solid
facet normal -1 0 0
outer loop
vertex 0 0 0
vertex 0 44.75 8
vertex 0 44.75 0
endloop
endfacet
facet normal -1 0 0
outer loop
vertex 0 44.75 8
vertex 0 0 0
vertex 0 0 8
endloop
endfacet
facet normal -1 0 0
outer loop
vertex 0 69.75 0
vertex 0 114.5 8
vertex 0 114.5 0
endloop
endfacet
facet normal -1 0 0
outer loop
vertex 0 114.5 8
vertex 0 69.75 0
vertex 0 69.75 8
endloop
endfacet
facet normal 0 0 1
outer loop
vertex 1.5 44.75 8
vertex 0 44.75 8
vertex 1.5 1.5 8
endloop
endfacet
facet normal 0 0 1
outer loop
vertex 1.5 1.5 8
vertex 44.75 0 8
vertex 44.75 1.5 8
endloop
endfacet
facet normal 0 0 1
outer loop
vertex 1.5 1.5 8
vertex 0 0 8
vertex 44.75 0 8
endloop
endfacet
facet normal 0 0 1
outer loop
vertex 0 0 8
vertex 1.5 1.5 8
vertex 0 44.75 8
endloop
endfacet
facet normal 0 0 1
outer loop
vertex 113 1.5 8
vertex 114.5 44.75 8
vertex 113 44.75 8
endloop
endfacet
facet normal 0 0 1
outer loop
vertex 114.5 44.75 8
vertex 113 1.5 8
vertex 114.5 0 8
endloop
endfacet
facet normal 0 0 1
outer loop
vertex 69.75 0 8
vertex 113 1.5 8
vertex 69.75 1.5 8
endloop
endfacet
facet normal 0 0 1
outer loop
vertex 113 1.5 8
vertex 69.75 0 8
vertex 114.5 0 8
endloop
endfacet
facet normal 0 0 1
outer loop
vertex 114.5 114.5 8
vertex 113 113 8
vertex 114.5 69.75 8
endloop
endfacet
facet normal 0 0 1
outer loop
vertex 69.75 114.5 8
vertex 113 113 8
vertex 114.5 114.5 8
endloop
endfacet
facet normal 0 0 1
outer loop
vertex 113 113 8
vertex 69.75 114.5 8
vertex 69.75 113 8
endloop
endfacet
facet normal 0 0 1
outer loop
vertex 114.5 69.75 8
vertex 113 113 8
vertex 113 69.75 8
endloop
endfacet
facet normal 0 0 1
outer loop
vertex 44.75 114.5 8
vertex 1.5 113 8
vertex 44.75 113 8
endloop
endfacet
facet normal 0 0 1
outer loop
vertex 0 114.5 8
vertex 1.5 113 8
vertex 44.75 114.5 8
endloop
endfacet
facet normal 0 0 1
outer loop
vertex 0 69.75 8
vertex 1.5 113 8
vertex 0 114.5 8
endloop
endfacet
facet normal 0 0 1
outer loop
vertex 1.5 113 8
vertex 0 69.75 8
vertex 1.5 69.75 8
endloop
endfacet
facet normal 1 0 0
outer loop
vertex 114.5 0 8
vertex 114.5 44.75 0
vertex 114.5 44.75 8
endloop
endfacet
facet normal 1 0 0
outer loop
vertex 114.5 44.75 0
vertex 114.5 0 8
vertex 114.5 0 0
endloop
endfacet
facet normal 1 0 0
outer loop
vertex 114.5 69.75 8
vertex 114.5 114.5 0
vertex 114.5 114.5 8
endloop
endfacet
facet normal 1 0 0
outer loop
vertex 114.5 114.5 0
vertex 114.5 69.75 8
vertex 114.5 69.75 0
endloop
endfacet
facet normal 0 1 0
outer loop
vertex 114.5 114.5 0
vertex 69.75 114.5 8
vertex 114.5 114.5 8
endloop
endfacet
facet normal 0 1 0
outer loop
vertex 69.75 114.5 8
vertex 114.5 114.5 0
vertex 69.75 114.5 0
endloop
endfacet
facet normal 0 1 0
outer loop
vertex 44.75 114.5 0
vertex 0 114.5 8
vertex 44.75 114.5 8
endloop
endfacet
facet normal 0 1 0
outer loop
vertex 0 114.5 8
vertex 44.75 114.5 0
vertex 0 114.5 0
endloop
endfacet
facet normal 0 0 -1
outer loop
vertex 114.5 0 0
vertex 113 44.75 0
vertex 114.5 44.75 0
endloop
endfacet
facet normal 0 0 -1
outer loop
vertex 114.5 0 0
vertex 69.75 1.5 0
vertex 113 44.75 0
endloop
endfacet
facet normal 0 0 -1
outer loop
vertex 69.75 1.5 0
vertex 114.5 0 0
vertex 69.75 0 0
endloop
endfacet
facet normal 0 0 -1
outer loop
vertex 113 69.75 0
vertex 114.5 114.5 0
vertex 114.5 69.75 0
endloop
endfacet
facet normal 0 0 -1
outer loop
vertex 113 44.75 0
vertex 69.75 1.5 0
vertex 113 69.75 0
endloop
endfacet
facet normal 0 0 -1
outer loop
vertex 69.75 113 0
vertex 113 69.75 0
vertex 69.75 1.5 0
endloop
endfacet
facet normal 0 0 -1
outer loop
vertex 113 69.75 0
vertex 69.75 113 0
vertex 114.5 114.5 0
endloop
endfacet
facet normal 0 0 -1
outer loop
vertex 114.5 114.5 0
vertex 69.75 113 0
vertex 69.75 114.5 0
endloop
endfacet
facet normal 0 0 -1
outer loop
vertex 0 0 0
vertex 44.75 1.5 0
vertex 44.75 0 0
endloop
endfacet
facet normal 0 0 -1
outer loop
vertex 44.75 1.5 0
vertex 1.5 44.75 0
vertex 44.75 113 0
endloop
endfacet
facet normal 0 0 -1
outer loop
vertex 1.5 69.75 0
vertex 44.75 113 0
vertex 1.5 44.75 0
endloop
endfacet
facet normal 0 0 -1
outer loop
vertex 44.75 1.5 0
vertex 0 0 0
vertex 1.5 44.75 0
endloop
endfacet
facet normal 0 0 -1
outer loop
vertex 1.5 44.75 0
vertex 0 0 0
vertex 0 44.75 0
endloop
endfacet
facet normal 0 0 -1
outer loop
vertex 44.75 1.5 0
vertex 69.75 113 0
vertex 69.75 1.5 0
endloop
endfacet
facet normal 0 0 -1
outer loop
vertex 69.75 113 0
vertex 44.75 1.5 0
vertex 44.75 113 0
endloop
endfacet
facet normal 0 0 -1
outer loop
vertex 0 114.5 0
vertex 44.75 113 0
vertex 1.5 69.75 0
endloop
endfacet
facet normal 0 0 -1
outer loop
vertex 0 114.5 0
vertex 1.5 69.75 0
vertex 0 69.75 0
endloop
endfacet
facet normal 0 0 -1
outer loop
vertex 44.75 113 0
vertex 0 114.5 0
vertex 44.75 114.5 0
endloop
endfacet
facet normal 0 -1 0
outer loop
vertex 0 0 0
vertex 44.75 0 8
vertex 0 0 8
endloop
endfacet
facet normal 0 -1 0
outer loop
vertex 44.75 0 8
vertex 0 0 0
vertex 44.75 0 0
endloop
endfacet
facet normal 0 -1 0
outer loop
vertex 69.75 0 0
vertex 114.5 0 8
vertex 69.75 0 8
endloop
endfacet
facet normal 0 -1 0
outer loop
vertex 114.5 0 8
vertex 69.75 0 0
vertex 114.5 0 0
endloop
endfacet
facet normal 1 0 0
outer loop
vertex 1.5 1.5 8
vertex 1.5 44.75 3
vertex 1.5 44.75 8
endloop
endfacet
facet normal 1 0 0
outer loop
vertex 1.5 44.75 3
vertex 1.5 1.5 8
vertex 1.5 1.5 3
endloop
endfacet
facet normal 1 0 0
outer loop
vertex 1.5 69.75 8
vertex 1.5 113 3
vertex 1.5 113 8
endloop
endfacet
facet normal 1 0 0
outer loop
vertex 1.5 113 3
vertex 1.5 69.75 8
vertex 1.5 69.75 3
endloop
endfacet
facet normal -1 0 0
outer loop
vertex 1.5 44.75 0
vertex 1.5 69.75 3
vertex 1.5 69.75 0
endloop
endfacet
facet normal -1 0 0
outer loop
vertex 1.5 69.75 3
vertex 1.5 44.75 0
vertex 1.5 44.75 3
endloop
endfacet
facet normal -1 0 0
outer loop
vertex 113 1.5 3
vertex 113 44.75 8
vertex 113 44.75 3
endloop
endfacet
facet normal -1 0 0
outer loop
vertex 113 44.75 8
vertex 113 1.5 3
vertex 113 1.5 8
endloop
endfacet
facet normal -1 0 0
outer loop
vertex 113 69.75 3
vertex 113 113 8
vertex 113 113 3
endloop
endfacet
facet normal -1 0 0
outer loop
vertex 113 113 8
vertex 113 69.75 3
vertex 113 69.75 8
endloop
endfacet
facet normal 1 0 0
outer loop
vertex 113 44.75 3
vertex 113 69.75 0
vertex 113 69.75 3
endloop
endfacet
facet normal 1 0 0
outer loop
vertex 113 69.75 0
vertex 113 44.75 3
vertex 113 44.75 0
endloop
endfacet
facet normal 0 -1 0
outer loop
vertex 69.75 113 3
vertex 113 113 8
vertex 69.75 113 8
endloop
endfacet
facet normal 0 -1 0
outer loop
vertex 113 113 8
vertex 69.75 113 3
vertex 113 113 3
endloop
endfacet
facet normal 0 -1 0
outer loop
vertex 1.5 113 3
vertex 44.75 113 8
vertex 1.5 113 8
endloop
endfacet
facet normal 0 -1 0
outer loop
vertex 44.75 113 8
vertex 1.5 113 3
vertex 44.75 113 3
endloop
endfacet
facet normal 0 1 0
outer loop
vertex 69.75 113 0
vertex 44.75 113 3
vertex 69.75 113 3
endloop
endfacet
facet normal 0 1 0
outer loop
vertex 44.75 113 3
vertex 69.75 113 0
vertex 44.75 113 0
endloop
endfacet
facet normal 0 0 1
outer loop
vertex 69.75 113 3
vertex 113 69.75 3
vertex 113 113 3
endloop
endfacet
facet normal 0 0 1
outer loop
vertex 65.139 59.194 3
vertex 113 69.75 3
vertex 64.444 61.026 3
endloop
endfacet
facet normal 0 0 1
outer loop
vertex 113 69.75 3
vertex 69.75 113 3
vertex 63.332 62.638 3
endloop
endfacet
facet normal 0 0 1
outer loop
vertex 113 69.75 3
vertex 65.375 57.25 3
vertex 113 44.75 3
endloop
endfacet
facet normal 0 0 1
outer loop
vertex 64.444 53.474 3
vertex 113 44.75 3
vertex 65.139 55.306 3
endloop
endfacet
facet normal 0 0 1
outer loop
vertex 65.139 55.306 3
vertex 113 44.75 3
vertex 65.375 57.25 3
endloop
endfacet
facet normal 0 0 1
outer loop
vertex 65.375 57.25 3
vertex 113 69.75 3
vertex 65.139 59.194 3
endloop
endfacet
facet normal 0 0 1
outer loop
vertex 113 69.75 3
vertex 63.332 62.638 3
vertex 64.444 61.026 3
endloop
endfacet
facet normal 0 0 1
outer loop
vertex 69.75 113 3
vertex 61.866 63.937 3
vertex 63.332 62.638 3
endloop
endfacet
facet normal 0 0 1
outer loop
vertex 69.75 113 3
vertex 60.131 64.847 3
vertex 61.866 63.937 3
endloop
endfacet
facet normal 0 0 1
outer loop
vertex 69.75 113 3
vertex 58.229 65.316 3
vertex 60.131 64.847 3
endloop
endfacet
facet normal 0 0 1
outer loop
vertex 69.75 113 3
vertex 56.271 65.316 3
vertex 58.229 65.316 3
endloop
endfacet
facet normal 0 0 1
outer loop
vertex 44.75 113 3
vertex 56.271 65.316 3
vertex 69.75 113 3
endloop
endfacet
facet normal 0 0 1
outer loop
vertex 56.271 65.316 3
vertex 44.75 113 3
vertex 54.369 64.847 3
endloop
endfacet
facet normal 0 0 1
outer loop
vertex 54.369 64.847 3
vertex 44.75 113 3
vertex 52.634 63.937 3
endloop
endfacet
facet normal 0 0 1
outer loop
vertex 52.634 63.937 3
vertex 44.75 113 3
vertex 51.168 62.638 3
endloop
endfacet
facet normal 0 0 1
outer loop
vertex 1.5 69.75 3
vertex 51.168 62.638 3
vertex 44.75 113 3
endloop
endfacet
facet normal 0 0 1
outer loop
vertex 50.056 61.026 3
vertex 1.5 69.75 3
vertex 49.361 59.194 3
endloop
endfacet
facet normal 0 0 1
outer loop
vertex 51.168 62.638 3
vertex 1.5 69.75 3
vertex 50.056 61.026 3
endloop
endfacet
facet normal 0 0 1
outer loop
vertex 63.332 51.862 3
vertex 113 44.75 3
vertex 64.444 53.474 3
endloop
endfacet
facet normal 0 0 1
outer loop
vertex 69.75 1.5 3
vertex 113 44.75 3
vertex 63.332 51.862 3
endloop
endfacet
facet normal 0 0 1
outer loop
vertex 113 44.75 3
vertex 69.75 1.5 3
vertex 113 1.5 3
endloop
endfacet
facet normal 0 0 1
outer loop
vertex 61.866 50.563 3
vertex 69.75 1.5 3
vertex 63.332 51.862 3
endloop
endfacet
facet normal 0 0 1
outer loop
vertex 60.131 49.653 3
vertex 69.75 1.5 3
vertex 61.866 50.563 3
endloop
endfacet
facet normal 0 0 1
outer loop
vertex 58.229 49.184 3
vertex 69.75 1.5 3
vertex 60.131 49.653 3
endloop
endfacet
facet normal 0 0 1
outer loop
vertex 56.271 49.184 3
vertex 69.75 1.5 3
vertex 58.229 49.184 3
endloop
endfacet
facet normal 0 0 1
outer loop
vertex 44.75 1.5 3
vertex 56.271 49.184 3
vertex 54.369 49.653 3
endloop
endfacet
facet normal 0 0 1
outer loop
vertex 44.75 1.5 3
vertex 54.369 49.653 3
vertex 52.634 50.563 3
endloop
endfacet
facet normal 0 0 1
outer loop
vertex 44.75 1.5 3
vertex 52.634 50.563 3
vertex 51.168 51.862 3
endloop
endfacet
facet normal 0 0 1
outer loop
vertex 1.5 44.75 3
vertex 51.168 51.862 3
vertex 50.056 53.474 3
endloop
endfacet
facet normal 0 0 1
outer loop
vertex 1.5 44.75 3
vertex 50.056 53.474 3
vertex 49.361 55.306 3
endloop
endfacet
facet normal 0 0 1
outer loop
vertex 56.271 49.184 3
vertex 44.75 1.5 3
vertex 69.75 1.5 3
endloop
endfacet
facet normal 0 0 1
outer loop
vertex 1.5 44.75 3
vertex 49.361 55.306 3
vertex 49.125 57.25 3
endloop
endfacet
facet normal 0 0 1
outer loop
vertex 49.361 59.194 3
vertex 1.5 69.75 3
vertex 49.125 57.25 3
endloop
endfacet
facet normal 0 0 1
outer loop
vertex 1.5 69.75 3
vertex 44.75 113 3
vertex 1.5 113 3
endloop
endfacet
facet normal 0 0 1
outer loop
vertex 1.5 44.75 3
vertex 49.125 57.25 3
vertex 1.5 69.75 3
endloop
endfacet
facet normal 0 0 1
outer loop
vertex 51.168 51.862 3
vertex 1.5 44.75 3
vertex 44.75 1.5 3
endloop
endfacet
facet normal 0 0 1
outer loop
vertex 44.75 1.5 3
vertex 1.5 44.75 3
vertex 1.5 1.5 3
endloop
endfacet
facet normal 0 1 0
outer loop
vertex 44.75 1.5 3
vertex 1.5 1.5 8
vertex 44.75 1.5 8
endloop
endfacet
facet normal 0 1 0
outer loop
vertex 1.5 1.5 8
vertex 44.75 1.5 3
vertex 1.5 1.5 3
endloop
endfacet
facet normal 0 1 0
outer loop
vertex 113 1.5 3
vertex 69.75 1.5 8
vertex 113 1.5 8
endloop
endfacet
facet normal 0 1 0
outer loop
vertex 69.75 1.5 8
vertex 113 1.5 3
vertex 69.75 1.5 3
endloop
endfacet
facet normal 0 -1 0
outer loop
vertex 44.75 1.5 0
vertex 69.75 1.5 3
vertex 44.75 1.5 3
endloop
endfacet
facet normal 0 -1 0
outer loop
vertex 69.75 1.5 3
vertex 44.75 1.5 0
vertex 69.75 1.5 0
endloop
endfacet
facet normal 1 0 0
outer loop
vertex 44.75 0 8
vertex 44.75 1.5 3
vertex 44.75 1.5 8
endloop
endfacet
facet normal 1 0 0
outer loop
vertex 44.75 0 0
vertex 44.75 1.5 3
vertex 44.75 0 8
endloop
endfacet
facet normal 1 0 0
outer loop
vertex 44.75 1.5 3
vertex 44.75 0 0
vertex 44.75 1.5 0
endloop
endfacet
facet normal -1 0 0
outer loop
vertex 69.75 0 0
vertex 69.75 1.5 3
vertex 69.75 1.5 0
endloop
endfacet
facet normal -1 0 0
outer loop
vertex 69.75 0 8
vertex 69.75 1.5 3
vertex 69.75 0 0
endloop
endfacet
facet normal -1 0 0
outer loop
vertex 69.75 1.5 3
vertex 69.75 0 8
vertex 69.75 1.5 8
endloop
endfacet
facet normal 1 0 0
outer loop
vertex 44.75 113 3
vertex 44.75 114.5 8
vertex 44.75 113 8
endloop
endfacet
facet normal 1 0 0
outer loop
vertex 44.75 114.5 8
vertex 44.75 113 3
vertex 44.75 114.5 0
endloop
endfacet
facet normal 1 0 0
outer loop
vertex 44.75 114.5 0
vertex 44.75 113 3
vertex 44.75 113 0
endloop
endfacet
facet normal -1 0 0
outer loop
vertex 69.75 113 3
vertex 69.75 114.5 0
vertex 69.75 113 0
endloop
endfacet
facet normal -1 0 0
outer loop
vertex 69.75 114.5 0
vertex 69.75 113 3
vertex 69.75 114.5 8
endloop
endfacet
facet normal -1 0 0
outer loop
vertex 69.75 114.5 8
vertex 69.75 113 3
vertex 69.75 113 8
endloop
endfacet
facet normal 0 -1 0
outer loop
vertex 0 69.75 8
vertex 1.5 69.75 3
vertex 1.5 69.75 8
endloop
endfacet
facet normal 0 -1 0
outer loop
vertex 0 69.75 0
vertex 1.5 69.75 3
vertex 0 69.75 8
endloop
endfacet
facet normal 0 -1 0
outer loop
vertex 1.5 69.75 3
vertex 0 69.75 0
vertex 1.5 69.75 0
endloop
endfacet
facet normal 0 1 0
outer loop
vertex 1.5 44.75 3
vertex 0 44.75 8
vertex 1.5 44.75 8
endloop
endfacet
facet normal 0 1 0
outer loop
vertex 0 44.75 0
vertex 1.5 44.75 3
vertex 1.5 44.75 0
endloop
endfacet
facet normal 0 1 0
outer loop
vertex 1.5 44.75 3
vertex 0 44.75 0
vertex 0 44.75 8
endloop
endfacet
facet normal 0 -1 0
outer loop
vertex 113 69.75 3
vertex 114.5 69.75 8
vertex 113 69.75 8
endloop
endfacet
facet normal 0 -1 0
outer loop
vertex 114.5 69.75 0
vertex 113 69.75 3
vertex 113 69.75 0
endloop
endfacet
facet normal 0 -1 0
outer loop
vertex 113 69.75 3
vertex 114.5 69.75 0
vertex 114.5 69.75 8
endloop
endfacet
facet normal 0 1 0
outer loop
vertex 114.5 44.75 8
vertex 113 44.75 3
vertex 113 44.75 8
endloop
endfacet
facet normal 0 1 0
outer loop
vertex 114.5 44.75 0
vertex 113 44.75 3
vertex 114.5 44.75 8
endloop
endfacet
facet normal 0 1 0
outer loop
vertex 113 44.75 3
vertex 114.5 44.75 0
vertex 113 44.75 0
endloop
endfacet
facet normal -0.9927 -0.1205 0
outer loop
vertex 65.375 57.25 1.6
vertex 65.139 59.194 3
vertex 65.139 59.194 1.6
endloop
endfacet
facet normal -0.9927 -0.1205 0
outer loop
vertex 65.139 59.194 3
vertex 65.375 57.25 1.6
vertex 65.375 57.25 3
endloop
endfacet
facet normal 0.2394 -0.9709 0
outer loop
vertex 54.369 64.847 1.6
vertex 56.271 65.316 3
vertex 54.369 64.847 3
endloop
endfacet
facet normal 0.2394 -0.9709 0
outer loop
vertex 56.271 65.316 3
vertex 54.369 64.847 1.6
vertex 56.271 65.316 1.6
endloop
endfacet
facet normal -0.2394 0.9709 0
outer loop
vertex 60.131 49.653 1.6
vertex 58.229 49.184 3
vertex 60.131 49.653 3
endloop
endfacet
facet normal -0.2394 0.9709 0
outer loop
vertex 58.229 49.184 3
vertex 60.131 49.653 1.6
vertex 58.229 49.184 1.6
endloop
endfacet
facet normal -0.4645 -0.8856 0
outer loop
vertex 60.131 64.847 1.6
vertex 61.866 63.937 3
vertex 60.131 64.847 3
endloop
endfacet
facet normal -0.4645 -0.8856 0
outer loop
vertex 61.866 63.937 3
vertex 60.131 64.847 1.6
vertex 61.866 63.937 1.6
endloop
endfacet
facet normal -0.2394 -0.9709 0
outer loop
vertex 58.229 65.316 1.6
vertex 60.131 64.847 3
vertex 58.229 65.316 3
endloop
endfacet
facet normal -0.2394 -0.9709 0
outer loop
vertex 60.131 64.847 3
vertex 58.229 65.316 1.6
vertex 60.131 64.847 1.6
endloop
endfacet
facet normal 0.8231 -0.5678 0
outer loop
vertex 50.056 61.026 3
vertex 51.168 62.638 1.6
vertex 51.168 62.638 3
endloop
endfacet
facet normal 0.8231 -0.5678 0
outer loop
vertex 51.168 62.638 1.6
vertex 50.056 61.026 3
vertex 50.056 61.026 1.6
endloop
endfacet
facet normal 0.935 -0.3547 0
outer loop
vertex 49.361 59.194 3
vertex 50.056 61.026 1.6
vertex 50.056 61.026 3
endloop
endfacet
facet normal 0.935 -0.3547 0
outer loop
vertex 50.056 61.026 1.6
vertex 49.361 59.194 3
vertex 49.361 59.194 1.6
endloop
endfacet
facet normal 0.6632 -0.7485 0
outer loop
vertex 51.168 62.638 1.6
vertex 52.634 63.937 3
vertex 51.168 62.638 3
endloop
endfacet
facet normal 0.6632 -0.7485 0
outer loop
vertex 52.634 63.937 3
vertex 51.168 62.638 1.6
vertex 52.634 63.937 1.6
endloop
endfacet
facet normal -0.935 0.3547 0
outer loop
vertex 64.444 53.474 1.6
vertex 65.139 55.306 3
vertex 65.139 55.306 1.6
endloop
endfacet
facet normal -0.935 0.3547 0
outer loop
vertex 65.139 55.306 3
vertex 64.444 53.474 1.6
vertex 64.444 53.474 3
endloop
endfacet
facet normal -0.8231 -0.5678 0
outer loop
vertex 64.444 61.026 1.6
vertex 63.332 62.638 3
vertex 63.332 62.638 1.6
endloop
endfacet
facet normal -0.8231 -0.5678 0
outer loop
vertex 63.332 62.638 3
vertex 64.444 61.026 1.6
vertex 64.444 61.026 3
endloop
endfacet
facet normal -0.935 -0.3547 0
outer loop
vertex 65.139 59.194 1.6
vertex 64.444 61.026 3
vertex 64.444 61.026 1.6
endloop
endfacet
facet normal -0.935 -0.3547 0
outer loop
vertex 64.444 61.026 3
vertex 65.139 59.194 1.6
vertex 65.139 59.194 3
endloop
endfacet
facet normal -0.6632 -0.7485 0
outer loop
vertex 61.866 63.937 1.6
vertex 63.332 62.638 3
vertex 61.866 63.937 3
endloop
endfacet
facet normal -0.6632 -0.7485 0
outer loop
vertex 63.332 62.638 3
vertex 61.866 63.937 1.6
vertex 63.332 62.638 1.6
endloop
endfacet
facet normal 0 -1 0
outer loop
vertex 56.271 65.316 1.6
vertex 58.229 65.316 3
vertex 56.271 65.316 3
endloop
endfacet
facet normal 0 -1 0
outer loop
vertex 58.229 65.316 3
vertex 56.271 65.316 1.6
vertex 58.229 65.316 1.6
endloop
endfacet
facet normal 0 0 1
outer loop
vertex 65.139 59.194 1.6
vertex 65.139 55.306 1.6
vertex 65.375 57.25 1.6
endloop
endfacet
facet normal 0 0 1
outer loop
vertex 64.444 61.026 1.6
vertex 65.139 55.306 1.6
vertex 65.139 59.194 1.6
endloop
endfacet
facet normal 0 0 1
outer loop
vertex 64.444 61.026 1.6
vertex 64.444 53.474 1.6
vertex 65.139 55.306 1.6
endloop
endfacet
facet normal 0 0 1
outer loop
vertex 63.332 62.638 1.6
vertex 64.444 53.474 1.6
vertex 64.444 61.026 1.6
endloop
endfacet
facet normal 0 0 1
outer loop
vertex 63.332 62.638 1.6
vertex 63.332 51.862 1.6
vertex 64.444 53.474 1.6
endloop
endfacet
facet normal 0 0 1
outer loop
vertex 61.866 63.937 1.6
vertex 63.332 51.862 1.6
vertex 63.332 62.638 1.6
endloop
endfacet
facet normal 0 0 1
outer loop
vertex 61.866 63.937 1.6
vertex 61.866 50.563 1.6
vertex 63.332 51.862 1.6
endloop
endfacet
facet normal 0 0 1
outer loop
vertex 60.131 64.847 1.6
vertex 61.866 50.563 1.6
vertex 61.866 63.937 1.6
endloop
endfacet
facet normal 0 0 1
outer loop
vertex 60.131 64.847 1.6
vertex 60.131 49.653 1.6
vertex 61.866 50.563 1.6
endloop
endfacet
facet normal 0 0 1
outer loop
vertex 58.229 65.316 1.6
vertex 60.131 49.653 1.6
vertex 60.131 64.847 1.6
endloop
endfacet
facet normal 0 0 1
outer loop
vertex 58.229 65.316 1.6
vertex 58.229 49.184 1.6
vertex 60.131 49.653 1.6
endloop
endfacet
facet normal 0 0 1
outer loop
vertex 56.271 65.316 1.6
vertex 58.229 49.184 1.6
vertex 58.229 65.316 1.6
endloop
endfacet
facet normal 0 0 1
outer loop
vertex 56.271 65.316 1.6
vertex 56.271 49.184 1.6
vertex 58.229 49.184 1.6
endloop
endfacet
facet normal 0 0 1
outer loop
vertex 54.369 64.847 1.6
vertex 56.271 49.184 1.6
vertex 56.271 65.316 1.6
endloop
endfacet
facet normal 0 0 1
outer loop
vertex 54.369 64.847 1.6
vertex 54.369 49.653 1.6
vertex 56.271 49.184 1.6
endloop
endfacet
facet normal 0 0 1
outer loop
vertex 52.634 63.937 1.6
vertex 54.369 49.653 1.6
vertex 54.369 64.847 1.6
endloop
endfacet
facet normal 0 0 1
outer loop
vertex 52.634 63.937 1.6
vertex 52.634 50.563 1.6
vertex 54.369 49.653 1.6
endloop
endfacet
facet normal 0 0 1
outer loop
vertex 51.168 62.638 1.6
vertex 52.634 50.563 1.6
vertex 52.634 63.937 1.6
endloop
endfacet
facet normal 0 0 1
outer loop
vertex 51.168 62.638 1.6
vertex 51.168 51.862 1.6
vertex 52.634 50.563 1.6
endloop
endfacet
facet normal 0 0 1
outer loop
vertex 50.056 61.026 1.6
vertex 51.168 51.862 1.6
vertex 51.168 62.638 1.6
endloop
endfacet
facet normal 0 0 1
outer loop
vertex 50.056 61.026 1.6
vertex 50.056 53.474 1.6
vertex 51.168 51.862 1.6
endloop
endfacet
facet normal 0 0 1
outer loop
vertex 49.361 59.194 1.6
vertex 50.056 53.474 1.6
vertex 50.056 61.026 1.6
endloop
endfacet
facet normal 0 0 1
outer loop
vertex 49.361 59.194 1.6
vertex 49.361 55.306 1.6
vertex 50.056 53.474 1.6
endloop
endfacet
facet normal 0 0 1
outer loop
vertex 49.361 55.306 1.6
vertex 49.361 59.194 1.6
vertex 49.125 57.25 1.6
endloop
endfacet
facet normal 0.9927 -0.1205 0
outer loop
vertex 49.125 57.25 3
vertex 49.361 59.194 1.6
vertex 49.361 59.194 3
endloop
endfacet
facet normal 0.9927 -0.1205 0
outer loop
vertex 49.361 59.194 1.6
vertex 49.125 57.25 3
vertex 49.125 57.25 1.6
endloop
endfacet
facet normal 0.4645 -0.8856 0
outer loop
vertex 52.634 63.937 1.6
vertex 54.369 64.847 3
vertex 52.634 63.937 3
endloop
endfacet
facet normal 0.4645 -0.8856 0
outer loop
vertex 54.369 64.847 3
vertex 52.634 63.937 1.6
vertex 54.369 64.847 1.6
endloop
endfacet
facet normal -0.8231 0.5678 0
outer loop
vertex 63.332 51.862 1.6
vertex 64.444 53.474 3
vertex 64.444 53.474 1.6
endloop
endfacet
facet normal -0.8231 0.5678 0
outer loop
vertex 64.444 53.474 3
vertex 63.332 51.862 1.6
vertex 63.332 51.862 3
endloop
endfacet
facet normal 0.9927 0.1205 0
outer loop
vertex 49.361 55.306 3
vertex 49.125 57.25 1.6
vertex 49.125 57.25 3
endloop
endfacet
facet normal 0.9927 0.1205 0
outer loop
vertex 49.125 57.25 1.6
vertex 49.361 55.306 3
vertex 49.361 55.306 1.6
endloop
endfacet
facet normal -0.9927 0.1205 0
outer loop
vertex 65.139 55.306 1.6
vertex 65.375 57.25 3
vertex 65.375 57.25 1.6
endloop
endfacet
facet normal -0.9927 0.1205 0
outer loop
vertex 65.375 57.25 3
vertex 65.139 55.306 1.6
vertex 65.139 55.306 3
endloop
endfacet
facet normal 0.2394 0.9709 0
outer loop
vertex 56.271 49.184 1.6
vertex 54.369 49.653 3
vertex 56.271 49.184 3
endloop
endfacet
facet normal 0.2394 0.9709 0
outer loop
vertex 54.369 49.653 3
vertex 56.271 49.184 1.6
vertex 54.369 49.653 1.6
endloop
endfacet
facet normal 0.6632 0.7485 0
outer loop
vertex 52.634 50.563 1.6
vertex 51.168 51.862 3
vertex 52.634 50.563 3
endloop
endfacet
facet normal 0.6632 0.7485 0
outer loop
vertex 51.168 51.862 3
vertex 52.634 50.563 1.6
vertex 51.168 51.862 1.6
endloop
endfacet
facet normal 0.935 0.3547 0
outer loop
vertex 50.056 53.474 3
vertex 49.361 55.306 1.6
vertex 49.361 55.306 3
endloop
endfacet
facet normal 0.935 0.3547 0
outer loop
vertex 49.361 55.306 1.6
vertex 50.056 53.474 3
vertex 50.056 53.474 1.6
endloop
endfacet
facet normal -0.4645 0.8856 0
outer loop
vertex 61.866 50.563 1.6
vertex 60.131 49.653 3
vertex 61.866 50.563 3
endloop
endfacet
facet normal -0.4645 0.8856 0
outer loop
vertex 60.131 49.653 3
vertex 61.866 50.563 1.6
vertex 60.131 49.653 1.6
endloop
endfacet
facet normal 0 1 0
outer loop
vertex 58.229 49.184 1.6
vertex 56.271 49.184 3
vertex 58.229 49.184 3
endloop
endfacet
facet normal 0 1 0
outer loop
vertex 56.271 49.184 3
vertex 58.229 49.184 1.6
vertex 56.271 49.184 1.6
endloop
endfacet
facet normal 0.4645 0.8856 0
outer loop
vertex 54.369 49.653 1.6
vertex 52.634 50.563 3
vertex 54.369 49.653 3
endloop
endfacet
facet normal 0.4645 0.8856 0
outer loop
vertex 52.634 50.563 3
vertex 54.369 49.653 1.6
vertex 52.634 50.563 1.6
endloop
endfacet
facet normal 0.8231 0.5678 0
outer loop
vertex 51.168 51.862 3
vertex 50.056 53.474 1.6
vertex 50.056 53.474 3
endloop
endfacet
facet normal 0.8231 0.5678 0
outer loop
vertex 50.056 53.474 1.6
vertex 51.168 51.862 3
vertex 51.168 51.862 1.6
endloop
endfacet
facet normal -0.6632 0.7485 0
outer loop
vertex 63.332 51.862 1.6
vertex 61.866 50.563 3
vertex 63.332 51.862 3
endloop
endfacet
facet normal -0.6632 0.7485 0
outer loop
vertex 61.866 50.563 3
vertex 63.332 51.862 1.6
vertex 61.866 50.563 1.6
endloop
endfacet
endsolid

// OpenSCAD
length = 110;
width = 110;

height = 3;
rimHeight = 5;
rimThickness = 1.5;
notchLength = 25;
//Based on washer size:
washerDiameter = 16.25;
washerHeight = 1.4;
rimPadding = 1.5;
totalHeight = height + rimHeight;

totalLength = length + rimThickness * 2 + rimPadding;
totalWidth = width + rimThickness * 2 + rimPadding;


pillarSideLength = 18;

magnetBaseInnerDiameter = 15.4;
spaceBetweenCircles = 2;
wallThickness = spaceBetweenCircles;
pillarSideOffset = .5;

difference() {
    cube([totalLength, totalWidth, height + rimHeight]);
    translate([rimThickness, rimThickness, height])
        cube([length + rimPadding, width + rimPadding, rimHeight]);
    
    translate([totalLength/2 - notchLength/2, 0, 0])
        cube([notchLength, rimThickness, totalHeight]);
    translate([totalLength/2 - notchLength/2, totalWidth-rimThickness, 0])
        cube([notchLength, rimThickness, totalHeight]);


    translate([0, totalWidth/2 - notchLength/2, 0])
        cube([rimThickness, notchLength, totalHeight]);
    translate([totalLength-rimThickness, totalWidth/2 - notchLength/2, 0])
        cube([rimThickness, notchLength, totalHeight]);
    
    translate([totalLength/2, totalWidth/2, height - washerHeight])
        cylinder(washerHeight, d=washerDiameter);
}
